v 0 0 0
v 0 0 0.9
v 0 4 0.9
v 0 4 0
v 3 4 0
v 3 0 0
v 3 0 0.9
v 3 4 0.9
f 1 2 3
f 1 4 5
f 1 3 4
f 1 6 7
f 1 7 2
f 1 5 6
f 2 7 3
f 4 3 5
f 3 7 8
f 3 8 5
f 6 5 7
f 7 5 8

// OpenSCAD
/* Warning, this is a very basic generator with a lot of approximation 
input data : [VQFN, HQA, 3x4x0.9mm, 8, , A, C04-01281A]
generated by com.zoubworld.electronics.cad.model3d.Basic
Date : Sun Feb 15 10:50:49 CET 2026
*/

//body
color("black")
translate([0,0,0])
cube([3.0,4.0,0.9], center=false);
